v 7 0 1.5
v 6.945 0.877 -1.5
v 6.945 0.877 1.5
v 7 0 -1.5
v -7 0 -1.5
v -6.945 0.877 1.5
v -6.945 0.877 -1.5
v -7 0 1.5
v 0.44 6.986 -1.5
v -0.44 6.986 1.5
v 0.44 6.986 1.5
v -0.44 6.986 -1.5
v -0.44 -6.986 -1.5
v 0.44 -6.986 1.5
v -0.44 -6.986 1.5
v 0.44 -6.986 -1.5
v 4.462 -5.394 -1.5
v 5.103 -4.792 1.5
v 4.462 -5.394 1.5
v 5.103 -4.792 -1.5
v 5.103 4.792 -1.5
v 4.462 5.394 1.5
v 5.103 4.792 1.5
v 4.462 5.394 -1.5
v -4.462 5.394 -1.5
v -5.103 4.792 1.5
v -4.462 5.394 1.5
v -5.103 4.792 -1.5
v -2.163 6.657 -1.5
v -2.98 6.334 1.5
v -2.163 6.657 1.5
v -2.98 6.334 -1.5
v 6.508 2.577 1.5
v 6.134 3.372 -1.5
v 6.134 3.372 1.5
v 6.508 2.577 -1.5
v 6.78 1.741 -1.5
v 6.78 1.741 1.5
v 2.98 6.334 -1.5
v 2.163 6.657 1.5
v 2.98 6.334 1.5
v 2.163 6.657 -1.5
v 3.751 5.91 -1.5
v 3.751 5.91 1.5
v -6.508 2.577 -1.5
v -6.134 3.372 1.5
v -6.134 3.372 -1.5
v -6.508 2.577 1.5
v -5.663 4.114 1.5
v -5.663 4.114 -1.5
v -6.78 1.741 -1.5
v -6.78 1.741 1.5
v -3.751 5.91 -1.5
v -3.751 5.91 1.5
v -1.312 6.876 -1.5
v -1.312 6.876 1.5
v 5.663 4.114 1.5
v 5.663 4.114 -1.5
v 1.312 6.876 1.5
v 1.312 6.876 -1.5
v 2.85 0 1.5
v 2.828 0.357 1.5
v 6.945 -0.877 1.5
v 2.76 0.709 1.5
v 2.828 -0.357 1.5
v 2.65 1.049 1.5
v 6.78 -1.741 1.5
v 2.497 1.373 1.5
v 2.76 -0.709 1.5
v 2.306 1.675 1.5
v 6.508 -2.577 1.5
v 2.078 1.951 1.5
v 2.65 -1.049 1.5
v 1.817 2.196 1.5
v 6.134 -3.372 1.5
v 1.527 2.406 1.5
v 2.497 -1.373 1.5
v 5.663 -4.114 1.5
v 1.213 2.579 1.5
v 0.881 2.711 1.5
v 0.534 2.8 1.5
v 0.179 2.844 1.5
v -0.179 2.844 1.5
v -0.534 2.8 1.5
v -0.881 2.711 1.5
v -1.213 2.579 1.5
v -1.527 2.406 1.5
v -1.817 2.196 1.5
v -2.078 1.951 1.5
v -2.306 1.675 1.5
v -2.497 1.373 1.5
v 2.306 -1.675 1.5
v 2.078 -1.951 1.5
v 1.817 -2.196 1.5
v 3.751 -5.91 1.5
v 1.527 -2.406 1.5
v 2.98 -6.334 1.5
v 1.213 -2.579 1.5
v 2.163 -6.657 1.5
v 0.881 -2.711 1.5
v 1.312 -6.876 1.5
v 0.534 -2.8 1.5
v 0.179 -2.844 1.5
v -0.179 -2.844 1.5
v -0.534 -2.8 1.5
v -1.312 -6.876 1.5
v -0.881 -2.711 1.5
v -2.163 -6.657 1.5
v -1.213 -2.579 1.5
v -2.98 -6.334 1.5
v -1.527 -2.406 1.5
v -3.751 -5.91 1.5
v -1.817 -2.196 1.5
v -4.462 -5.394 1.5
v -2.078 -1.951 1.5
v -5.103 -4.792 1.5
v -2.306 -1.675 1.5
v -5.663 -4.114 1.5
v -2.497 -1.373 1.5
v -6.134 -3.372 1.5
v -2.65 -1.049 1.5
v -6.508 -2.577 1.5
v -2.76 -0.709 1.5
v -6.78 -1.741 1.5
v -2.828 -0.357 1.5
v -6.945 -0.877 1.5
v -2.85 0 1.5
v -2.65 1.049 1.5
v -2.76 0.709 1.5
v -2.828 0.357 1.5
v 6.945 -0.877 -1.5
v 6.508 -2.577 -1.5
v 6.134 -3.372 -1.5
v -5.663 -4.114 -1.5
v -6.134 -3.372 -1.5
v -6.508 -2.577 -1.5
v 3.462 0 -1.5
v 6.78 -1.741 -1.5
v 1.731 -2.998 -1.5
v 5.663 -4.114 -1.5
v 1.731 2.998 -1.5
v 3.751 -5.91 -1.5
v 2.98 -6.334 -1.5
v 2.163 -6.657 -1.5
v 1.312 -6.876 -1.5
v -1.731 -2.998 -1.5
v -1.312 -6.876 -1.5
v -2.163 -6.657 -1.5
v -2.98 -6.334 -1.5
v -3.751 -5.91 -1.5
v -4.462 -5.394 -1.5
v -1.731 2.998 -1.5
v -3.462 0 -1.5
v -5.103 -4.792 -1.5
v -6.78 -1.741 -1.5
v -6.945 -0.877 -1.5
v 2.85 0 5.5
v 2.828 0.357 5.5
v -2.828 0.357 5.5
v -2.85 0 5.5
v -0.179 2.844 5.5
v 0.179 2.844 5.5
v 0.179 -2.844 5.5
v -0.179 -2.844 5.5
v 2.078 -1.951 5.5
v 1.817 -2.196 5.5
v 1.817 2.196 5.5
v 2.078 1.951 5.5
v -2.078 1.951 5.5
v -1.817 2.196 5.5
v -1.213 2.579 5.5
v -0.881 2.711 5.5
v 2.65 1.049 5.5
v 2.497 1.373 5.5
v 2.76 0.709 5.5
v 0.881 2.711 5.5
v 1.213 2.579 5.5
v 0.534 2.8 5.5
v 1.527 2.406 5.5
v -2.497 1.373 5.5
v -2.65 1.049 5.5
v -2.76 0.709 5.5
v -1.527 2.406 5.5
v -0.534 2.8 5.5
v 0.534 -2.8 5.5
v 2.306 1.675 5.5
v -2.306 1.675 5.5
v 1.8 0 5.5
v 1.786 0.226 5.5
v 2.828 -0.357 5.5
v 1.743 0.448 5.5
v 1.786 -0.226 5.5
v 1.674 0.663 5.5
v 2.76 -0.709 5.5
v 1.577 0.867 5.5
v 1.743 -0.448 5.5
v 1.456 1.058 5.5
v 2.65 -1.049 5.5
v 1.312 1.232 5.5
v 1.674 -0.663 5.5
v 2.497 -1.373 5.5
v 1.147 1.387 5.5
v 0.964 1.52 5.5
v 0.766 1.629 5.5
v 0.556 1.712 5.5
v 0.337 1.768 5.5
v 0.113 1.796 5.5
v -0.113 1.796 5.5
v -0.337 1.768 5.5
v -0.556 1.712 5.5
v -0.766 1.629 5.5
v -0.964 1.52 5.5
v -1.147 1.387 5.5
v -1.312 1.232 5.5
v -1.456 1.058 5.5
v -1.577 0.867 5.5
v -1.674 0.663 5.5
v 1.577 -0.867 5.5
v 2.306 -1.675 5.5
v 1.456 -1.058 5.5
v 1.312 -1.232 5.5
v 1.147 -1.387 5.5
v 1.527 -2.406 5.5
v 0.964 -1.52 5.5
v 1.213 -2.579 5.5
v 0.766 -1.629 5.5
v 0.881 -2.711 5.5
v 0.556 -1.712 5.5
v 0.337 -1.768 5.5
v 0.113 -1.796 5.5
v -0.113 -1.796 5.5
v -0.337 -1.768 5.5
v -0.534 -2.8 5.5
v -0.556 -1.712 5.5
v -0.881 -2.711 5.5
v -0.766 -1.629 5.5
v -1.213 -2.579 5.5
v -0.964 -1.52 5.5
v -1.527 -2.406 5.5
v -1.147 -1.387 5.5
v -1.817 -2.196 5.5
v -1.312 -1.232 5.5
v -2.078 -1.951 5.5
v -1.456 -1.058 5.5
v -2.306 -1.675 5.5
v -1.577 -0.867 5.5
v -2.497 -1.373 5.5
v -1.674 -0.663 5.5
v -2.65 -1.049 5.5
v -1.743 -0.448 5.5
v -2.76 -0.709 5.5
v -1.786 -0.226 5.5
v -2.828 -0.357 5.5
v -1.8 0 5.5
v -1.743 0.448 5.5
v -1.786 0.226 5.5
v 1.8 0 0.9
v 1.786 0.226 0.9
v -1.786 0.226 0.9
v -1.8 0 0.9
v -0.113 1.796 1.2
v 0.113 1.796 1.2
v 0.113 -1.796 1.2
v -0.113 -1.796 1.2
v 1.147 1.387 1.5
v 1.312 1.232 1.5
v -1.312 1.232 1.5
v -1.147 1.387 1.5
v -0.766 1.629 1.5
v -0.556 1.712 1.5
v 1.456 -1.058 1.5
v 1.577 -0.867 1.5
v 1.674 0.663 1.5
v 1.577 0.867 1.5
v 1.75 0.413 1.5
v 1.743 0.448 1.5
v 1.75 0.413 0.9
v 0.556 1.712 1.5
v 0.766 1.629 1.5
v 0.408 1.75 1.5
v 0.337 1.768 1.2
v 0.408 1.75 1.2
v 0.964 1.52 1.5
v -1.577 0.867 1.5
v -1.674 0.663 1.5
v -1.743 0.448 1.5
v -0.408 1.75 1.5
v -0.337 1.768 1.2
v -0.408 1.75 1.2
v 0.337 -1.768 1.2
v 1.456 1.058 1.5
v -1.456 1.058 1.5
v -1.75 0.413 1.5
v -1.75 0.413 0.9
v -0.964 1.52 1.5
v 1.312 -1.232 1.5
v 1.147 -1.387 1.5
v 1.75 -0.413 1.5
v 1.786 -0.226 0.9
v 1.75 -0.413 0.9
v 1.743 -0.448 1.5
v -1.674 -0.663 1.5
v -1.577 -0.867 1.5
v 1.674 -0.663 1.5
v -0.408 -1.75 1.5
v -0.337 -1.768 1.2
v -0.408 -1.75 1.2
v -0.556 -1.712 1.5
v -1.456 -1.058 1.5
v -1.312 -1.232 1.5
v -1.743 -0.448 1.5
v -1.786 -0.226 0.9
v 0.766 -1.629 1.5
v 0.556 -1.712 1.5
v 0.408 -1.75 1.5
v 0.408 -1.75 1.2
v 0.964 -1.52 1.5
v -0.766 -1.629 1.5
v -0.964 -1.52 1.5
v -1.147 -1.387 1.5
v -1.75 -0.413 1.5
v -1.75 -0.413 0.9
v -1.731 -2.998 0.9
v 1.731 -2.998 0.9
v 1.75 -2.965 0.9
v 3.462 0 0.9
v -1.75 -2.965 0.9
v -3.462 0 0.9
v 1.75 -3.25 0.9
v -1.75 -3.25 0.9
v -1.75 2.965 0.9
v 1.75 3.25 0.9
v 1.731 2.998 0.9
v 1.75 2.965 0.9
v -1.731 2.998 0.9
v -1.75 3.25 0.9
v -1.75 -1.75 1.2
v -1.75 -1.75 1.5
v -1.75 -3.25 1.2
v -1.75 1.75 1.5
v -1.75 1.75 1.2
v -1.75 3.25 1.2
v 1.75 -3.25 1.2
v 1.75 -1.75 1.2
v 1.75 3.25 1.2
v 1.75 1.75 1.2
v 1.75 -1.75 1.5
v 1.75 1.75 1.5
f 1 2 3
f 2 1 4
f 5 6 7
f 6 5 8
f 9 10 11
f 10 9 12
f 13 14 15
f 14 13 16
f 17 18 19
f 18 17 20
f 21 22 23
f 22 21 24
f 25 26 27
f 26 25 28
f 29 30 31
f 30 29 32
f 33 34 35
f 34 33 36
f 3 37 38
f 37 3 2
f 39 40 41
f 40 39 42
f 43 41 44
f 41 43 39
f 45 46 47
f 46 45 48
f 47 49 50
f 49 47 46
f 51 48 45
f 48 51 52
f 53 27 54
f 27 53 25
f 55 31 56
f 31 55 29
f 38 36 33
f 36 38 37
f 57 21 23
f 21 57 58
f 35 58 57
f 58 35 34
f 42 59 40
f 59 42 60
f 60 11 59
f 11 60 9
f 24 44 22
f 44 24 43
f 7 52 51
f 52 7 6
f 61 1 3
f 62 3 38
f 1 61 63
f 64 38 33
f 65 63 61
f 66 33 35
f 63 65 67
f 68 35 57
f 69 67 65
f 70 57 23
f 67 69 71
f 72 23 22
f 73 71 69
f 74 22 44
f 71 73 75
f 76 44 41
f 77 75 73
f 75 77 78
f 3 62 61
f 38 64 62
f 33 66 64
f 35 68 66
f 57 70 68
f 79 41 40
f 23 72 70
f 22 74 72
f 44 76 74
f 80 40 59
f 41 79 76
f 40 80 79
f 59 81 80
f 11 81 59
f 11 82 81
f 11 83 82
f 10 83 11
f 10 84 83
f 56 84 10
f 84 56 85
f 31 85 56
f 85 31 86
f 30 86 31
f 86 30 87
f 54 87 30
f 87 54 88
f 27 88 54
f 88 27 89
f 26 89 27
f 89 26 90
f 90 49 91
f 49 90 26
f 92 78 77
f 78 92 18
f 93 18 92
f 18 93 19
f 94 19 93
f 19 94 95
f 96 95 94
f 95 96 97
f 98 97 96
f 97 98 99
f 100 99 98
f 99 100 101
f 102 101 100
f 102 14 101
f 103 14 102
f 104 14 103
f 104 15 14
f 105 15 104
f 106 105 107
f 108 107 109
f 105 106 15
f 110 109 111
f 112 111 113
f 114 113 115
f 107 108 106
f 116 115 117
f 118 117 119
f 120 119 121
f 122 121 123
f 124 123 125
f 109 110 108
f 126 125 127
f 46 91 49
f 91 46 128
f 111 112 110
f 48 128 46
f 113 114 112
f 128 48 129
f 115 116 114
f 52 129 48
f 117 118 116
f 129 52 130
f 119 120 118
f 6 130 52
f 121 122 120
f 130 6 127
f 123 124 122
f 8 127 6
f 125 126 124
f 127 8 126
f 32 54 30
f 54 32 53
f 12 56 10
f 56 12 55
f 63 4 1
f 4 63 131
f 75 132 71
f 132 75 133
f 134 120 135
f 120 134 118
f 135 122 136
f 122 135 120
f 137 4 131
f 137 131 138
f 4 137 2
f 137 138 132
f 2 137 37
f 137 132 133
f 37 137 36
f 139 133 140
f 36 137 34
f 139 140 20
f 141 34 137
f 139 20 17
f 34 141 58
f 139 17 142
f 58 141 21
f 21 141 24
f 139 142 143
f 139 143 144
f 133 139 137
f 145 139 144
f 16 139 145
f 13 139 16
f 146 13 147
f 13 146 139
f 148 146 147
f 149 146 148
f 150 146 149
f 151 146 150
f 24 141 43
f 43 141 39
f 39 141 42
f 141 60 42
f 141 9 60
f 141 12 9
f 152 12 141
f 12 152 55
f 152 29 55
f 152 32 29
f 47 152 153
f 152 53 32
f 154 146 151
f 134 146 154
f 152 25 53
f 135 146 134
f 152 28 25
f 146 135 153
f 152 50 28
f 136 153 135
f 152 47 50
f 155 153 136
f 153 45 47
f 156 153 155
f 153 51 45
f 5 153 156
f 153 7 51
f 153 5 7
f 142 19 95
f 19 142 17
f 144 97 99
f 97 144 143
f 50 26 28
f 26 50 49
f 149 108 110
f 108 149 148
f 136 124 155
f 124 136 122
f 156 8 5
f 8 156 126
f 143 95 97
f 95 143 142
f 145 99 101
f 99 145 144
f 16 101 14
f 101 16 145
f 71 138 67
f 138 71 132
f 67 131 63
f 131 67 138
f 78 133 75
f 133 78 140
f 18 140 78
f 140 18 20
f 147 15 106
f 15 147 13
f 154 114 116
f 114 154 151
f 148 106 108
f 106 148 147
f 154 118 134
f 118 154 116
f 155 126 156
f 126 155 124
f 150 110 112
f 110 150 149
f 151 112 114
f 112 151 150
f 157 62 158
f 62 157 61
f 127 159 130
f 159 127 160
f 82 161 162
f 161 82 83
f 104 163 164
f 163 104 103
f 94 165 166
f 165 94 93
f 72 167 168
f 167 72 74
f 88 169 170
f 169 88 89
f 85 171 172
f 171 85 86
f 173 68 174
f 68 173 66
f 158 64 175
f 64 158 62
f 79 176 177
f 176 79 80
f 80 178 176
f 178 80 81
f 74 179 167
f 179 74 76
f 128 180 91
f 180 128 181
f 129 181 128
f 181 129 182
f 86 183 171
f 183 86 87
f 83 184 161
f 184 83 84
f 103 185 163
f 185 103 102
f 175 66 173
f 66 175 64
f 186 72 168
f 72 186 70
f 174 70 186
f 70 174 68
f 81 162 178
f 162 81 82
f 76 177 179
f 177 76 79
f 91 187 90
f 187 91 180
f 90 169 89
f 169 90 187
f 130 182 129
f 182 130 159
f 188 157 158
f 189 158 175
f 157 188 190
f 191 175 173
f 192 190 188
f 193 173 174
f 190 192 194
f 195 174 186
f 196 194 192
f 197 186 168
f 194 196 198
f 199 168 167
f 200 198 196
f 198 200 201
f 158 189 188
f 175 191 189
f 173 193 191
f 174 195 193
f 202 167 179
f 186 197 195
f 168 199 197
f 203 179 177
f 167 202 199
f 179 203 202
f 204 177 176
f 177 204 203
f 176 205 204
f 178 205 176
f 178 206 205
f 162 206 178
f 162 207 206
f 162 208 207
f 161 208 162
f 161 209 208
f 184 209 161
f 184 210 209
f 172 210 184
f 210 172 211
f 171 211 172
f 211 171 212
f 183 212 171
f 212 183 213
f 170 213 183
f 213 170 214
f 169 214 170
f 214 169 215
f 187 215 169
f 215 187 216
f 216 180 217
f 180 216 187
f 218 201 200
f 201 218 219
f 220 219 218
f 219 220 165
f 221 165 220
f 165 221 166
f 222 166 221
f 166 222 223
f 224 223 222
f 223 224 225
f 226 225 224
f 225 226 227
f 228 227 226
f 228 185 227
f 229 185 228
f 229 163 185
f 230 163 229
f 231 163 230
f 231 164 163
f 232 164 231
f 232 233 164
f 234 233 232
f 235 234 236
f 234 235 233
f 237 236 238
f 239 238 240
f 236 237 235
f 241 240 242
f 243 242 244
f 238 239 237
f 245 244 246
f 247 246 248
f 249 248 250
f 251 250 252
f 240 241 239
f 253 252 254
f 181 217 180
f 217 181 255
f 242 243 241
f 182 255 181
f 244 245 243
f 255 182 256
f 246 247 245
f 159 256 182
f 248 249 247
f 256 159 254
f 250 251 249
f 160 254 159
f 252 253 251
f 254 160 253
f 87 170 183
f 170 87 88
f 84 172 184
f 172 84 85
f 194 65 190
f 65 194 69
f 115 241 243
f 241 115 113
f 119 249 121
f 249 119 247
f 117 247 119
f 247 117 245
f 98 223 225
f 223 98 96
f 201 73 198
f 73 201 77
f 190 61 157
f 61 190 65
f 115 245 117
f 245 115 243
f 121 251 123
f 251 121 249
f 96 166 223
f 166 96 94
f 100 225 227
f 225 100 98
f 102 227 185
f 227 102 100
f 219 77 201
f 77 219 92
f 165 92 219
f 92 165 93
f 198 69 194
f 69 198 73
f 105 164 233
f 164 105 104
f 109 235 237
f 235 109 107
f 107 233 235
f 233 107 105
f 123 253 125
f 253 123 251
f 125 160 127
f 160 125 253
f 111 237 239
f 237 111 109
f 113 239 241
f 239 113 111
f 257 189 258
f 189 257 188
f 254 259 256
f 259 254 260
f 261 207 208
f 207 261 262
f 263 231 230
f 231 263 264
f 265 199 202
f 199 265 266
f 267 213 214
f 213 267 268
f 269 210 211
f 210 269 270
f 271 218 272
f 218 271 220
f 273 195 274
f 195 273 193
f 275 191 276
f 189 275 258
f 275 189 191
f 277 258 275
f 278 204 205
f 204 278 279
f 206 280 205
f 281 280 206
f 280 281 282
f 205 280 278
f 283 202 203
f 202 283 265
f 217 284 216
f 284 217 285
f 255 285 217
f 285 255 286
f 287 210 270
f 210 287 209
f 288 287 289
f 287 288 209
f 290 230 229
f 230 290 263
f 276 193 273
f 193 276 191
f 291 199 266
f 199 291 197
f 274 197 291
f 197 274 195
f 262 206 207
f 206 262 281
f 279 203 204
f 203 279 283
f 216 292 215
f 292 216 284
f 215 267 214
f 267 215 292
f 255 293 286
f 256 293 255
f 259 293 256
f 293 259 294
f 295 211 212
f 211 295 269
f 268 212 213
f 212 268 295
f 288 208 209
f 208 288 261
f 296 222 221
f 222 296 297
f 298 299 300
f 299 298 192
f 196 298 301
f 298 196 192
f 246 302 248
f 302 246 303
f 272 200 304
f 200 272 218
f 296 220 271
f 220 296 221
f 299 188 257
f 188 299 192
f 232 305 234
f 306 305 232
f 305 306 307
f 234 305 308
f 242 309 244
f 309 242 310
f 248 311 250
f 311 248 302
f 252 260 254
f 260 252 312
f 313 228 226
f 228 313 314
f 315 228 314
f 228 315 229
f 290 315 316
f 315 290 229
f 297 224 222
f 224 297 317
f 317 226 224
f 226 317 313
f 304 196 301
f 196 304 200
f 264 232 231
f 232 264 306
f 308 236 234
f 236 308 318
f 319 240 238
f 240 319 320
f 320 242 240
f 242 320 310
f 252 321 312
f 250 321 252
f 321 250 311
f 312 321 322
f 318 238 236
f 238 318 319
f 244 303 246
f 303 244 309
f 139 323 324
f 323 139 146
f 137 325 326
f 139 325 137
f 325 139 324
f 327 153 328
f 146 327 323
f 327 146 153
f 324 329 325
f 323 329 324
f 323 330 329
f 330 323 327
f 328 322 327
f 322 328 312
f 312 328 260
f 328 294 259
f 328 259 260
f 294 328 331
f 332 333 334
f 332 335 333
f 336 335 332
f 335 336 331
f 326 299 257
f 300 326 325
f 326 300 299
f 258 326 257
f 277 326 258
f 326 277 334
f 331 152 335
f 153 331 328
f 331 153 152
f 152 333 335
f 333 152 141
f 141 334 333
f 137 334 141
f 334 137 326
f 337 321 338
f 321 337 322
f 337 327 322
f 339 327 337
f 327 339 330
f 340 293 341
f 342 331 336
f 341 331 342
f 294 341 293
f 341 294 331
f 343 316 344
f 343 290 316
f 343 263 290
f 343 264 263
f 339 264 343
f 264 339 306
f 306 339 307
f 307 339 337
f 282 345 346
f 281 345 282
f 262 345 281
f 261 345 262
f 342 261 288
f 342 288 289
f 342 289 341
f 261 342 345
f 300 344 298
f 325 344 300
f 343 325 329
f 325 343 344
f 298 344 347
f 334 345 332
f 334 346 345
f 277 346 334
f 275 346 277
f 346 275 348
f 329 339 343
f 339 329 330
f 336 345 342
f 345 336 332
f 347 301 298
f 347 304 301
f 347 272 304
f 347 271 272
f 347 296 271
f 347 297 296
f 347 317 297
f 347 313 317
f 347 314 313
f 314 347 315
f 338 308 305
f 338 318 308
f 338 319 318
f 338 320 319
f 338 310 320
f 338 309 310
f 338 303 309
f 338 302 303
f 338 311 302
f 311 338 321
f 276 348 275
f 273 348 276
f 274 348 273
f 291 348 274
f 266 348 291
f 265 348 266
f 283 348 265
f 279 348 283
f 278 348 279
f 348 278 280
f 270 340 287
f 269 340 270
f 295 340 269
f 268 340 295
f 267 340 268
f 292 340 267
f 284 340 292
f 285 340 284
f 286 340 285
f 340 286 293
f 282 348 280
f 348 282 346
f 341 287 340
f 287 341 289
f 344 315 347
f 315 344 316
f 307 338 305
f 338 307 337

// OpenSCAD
$fn = 50;


difference() {
	union() {
		translate(v = [0, 0, -1.5000000000]) {
			rotate(a = [0, 0, 0]) {
				cylinder(h = 3, r = 7.0000000000);
			}
		}
		translate(v = [0, 0, -1.5000000000]) {
			rotate(a = [0, 0, 0]) {
				cylinder(h = 7, r = 2.8500000000);
			}
		}
	}
	union() {
		translate(v = [0, 0, -125.0000000000]) {
			rotate(a = [0, 0, 0]) {
				cylinder(h = 250, r = 1.8000000000);
			}
		}
		translate(v = [0, 0, -2.1000000000]) {
			rotate(a = [0, 0, 0]) {
				#translate(v = [0, 0, 0]) {
					rotate(a = [0, 0, 0]) {
						linear_extrude(height = 3) {
							polygon(points = [[3.4620000000, 0.0000000000], [1.7310000000, 2.9981799479], [-1.7310000000, 2.9981799479], [-3.4620000000, 0.0000000000], [-1.7310000000, -2.9981799479], [1.7310000000, -2.9981799479]]);
						}
					}
				}
			}
		}
		#translate(v = [-1.7500000000, -3.2500000000, 0.9000000000]) {
			rotate(a = [0, 0, 0]) {
				cube(size = [3.5000000000, 6.5000000000, 0.3000000000]);
			}
		}
		#translate(v = [-1.7500000000, -1.7500000000, 1.2000000000]) {
			rotate(a = [0, 0, 0]) {
				cube(size = [3.5000000000, 3.5000000000, 0.3000000000]);
			}
		}
		#translate(v = [-1.7500000000, -3.2500000000, -2.4000000000]) {
			rotate(a = [0, 0, 0]) {
				cube(size = [3.5000000000, 6.5000000000, 0.3000000000]);
			}
		}
		#translate(v = [-1.7500000000, -1.7500000000, -2.7000000000]) {
			rotate(a = [0, 0, 0]) {
				cube(size = [3.5000000000, 3.5000000000, 0.3000000000]);
			}
		}
	}
}
